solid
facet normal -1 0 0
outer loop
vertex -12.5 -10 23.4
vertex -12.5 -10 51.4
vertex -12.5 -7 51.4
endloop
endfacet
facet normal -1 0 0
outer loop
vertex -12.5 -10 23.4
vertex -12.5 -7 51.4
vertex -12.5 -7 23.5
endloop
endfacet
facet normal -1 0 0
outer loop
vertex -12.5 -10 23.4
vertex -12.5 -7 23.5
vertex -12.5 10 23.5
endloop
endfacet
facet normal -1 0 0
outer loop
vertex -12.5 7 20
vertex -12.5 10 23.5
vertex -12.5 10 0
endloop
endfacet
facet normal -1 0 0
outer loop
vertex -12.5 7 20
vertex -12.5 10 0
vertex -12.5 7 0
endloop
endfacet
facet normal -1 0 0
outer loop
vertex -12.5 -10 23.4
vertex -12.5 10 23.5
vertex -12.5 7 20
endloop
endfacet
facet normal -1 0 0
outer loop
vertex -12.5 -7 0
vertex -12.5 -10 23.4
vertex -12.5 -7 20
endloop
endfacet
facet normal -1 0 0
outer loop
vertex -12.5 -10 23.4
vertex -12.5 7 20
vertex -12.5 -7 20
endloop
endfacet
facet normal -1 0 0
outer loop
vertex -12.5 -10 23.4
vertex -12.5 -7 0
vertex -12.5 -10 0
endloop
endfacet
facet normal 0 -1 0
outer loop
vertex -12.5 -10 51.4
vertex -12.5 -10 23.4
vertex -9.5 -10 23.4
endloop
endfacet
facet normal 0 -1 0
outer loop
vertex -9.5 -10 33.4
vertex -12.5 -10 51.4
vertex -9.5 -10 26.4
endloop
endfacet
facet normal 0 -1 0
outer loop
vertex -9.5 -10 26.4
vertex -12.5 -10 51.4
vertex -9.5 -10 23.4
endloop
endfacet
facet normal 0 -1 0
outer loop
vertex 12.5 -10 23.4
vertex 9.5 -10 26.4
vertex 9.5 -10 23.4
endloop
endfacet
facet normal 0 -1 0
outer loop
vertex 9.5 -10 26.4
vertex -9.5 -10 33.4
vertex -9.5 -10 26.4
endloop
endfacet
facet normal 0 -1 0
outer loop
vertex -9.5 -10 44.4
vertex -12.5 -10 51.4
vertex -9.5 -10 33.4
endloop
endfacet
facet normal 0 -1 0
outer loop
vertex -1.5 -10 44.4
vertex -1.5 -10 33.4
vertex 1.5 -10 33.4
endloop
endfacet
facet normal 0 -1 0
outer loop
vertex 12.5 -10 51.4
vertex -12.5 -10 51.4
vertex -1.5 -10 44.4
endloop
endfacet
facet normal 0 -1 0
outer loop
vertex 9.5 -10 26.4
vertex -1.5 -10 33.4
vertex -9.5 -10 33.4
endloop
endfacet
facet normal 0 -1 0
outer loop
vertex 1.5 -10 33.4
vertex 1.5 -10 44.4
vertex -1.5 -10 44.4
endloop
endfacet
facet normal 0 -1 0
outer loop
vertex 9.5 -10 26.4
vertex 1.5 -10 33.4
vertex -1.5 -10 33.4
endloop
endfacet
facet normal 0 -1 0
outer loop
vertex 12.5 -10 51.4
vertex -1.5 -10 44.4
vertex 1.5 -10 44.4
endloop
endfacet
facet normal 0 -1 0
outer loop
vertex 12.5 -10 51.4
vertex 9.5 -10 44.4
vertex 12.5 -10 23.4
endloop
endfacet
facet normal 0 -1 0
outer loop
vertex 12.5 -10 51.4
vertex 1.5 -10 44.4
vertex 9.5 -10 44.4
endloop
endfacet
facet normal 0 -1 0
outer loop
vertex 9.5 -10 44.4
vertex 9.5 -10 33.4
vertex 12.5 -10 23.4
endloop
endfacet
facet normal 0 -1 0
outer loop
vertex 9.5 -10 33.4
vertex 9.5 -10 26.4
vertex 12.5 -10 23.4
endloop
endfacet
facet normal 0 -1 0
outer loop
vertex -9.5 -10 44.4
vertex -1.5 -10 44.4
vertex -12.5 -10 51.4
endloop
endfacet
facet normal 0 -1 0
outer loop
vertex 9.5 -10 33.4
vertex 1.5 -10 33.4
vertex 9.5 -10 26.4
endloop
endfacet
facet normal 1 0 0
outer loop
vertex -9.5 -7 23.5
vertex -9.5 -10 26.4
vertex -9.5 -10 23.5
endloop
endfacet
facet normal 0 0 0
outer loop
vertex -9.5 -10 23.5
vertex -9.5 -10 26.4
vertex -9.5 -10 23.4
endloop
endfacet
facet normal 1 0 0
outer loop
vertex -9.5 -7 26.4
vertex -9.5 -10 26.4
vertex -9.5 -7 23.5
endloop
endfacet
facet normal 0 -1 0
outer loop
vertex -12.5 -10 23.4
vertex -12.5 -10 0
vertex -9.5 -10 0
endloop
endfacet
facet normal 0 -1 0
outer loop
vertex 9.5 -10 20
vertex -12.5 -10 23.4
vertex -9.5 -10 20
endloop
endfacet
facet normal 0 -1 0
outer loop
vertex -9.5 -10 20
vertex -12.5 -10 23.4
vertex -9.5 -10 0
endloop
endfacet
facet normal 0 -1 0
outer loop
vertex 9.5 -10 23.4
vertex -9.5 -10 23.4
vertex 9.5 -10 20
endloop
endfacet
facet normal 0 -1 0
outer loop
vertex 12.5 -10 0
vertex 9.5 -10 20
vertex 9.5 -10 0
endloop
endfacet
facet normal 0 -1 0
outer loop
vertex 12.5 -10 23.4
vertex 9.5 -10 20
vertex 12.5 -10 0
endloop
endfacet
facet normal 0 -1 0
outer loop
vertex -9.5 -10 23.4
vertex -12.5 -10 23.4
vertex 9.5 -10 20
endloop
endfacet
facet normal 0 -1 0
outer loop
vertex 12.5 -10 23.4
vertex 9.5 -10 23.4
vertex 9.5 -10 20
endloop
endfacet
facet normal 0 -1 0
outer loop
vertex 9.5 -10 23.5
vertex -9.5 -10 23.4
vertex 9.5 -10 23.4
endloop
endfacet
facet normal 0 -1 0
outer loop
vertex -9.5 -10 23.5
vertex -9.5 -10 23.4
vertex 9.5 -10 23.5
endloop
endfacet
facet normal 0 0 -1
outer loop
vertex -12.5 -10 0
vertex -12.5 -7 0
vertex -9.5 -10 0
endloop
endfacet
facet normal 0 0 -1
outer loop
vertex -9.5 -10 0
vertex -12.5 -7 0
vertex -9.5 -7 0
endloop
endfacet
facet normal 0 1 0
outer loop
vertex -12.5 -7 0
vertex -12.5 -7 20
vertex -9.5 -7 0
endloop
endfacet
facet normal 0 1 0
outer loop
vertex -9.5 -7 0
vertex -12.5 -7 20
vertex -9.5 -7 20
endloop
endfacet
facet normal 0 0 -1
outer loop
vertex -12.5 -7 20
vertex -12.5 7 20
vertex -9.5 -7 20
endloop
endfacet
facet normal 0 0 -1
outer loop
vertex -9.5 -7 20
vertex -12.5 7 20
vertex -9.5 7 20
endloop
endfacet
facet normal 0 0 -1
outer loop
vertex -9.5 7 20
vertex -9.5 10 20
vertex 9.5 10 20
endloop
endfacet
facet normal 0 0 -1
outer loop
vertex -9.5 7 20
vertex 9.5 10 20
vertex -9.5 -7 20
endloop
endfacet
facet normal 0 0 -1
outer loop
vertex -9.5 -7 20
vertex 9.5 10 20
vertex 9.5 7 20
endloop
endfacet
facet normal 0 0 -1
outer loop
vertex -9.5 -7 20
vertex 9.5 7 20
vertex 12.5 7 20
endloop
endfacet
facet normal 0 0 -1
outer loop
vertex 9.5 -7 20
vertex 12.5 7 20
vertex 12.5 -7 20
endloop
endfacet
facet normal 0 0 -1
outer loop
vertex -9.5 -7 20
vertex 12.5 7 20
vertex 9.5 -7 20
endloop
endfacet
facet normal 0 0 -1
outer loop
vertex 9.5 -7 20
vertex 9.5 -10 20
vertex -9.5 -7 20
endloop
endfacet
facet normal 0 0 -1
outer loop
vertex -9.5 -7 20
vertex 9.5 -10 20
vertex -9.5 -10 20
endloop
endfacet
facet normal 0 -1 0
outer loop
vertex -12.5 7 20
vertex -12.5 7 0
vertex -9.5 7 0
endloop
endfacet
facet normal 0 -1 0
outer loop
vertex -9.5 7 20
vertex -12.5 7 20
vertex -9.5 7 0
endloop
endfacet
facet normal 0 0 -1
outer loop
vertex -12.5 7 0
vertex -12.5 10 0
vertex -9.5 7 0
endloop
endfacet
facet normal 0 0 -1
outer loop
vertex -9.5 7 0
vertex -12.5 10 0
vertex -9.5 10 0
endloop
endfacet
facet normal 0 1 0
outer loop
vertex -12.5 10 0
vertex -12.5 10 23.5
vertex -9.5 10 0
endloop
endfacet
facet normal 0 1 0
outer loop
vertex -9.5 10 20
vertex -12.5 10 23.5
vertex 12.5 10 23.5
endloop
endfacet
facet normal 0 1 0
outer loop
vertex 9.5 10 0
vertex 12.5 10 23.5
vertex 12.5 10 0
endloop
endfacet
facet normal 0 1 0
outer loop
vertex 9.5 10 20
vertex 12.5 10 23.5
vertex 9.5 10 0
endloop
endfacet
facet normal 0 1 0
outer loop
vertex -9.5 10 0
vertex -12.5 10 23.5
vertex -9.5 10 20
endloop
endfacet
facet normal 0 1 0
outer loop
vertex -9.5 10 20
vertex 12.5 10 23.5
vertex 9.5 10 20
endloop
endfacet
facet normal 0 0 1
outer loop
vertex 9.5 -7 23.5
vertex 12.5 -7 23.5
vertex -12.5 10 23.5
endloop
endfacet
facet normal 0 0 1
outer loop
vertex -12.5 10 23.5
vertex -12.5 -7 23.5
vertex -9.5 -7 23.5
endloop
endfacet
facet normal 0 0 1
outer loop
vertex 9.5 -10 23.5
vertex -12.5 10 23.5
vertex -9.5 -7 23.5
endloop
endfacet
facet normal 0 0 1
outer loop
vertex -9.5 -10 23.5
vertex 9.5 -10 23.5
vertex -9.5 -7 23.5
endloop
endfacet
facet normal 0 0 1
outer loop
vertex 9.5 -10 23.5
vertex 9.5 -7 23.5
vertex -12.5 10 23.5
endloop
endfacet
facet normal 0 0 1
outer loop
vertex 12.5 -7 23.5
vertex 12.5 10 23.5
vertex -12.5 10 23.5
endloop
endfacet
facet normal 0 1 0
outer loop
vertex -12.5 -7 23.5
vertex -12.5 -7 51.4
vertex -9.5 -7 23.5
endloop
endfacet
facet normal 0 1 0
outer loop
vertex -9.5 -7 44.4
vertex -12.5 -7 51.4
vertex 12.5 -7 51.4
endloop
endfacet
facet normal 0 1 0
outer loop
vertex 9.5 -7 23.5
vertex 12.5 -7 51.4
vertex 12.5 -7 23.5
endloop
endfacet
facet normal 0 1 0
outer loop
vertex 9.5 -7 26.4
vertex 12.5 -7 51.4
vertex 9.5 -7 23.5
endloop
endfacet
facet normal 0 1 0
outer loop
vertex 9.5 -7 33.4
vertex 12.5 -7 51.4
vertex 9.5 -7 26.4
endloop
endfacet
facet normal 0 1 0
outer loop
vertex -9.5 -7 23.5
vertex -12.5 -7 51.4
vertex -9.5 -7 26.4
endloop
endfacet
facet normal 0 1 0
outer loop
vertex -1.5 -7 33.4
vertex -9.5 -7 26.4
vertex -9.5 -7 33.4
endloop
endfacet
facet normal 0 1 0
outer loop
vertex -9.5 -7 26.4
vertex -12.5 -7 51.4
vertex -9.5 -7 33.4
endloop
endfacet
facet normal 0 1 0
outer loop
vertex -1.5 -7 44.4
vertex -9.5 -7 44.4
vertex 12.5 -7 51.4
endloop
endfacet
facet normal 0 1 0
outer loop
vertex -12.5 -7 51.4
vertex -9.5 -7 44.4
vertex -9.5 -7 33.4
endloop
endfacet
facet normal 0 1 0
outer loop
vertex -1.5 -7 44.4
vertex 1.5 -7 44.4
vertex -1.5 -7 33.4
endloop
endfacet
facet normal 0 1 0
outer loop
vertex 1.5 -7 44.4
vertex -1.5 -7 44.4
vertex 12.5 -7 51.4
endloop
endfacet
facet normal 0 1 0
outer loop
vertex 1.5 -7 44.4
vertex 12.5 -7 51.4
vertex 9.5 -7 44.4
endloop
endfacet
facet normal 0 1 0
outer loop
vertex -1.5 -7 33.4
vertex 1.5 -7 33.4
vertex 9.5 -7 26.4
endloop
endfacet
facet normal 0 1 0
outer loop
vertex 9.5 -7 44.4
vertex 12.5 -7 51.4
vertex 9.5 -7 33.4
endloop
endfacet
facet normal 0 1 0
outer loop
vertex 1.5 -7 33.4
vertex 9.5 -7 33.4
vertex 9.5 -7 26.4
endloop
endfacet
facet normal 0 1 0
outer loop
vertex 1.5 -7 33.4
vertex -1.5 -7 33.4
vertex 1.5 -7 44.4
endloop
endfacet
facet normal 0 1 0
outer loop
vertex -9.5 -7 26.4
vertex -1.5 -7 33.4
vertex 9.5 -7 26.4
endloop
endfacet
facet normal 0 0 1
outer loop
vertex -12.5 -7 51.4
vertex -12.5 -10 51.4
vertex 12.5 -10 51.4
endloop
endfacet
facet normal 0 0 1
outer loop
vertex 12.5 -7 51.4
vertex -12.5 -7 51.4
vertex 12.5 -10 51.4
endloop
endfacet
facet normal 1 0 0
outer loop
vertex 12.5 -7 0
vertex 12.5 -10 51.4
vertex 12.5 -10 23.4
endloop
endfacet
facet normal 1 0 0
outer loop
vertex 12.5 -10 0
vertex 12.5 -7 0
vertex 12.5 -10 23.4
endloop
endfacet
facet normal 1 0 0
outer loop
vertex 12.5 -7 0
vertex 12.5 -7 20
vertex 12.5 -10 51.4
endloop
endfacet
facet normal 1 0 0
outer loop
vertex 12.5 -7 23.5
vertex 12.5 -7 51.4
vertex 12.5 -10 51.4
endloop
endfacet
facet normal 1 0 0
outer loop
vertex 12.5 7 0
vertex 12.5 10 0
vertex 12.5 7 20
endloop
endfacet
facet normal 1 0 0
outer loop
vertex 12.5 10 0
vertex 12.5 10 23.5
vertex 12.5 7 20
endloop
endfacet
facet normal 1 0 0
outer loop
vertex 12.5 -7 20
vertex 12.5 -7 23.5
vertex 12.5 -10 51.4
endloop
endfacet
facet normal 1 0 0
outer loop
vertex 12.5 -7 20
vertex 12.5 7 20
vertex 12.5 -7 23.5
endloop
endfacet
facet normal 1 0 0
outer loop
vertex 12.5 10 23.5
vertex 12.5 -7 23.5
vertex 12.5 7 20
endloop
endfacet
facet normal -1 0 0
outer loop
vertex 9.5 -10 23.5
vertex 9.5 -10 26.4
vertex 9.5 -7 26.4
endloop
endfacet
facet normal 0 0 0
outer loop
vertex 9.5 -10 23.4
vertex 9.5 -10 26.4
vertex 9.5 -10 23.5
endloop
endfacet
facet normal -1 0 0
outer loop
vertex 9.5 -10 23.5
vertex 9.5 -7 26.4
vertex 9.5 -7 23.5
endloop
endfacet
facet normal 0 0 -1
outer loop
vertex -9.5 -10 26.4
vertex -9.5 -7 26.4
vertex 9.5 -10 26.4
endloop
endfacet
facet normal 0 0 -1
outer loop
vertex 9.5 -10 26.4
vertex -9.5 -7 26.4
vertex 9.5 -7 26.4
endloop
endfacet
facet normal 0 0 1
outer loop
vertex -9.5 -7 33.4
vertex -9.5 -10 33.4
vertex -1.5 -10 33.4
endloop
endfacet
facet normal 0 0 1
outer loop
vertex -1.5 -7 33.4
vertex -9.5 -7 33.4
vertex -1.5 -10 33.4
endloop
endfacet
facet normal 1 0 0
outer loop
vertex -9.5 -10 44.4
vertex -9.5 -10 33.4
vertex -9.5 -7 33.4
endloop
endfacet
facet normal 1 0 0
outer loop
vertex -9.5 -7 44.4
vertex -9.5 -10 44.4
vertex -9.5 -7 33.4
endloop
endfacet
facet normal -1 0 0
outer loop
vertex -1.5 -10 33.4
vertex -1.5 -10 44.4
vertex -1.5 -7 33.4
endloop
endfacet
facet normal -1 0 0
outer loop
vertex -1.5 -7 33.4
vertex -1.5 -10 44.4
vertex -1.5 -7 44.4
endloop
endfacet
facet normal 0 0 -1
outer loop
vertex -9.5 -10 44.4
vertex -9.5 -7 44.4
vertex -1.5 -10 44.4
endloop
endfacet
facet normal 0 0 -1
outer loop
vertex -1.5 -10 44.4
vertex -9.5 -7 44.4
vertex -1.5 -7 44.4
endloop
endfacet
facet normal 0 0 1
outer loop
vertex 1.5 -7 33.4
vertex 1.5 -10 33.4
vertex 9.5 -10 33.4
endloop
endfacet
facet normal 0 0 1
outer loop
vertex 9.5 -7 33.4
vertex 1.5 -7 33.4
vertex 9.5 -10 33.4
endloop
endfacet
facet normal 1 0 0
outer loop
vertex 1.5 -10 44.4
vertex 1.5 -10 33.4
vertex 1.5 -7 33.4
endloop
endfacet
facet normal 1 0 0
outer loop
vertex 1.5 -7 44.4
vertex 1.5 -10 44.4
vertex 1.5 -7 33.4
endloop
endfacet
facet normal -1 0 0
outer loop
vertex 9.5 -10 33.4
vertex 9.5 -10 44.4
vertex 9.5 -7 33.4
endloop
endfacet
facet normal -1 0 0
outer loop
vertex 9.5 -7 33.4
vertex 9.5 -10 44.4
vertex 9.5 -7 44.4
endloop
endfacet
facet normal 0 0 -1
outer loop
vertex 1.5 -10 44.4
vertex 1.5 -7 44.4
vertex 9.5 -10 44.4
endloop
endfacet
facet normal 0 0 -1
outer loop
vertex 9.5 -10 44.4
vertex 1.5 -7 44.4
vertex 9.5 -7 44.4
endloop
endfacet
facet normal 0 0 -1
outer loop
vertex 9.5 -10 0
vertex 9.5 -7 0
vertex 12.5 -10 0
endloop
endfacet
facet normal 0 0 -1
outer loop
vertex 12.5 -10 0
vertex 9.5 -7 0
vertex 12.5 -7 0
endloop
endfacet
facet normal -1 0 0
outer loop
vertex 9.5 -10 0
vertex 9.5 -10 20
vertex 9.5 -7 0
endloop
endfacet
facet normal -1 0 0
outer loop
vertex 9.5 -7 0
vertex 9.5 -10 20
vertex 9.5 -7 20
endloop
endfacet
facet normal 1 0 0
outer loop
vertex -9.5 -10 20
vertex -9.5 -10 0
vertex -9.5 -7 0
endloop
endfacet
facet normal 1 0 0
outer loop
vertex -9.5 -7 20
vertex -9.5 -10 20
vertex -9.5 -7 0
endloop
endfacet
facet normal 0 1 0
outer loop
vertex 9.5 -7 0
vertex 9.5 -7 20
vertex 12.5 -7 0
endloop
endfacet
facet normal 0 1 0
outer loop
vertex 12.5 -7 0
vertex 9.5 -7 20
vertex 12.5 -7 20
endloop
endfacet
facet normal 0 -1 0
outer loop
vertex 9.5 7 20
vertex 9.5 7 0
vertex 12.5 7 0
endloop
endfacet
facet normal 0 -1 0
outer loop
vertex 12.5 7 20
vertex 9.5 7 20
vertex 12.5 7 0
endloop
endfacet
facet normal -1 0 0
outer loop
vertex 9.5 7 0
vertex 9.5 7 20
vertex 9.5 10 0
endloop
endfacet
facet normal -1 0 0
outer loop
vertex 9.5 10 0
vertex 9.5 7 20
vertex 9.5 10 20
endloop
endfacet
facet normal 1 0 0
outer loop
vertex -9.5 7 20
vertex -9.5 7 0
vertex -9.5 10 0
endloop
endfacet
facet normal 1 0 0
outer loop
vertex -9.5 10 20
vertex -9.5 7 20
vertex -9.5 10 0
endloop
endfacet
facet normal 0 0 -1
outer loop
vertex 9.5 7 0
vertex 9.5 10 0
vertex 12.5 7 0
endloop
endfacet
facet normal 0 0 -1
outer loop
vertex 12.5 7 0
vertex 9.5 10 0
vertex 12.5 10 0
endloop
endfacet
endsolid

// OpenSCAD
/*
the following parameters are for the
seat of the chair - actually the table
module which will mean that some
contraints will be necessary in the
values for the seat back so that it
fits - there are no checks in this code
as it is easy to see if chosen values
are appropiate or even physically
possible
*/

length = 20;
width  =25;
depth = 3.5;;

// parametersfor the  legs  - legs have square cross section

cross =3;
leg_length =20;





echo(" length table is ", length, " mm");
 echo(" width table is ", width, " mm");
echo(" depth table top is ", depth, " mm");
 echo(" width table leg is ", cross, " mm");
 echo(" height table leg is ", leg_length, " mm");
 echo(" overall height table  is ", leg_length + depth, " mm");

/*
now parameters for the chair back
some will be constrained to values for
the table which forms the seat of
the chair - that is the overall width
of the seat back and the thickness
of the seat back -
the four settable parameters are
below
*/



overall_height = 25;
leg_len =3;
width_vertical_bar = 3;
width_horizontal_bar =7;

overall_width = width;
thickness =cross;





union()
{
translate([0,0,leg_length+depth])
rotate([180,0,0])
table();
translate([0,-l+thickness,hoh + leg_len + leg_length +  depth-0.1 ])
rotate([90,0,0])
chair_back();

}





l = length/2;
w = width/2;

how = overall_width/2;
hoh = overall_height/2;
ll = -hoh - leg_len;
wvb = width_vertical_bar;
whb = width_horizontal_bar;
hwvb = wvb/2;









module table()
{

/*
   polyhedron command
  by pmoews
*/
polyhedron
       (points = [
                 [ -w,  l, 0],
                 [ -w, -l, 0],
                 [  w, -l, 0],
                 [  w,  l, 0],
                 [ -w,  l,  depth],
                 [ -w, -l,  depth],
                 [  w, -l,  depth],
                 [  w,  l,  depth],
                 [  w-cross, -l,  depth],
                 [  w-cross, cross-l,  depth],
                 [  w, cross-l,  depth],
                 [  w, -l,  leg_length + depth],
                 [  w-cross, -l,  leg_length + depth],
                 [  w-cross, cross-l,  leg_length + depth],
                 [  w, cross-l,  leg_length + depth],
                 [  w,  l-cross,  depth],
                 [  w-cross,  l-cross,  depth],
                 [  w-cross,  l,  depth],
                 [  w,  l,  leg_length + depth],
                 [  w,  l-cross,  leg_length + depth],
                 [  w-cross,  l-cross,  leg_length + depth],
                 [  w-cross,  l,  leg_length + depth],
                 [ cross-w,  l,  depth],
                 [ cross-w,  l-cross,  depth],
                 [ -w,  l-cross,  depth],
                 [ -w,  l,  leg_length + depth],
                 [ cross-w,  l,  leg_length + depth],
                 [ cross-w,  l-cross,  leg_length + depth],
                 [ -w,  l-cross,  leg_length + depth],
                 [ -w, cross-l,  depth],
                 [ cross-w, cross-l,  depth],
                 [ cross-w, -l,  depth],
                 [ -w, -l,  leg_length + depth],
                 [ -w, cross-l,  leg_length + depth],
                 [ cross-w, cross-l,  leg_length + depth],
                 [ cross-w, -l,  leg_length + depth],
                ],
           triangles = [
                 [   14,   10,   11],[    6,   11,   10],
                 [   11,    6,   12],[    8,   12,    6],
                 [   12,    8,   13],[    9,   13,    8],
                 [   13,    9,   14],[    9,   10,   14],
                 [   17,   21,   16],[   20,   16,   21],
                 [   16,   20,   15],[   19,   15,   20],
                 [   15,   19,    7],[   18,    7,   19],
                 [    7,   18,   17],[   18,   21,   17],
                 [   24,   28,   23],[   27,   23,   28],
                 [   23,   27,   22],[   26,   22,   27],
                 [   22,   26,    4],[   25,    4,   26],
                 [    4,   25,   24],[   25,   28,   24],
                 [   31,   35,   30],[   34,   30,   35],
                 [   30,   34,   29],[   33,   29,   34],
                 [   29,   33,    5],[   32,    5,   33],
                 [    5,   32,   31],[   32,   35,   31],
                 [   13,   14,   11],[   13,   11,   12],
                 [   20,   21,   18],[   20,   18,   19],
                 [   27,   28,   25],[   27,   25,   26],
                 [   34,   35,   32],[   34,   32,   33],
                 [    2,    3,    0],[    2,    0,    1],
                 [   16,    9,   30],[   16,   30,   23],
                 [   10,    2,    6],[    7,    3,   15],
                 [   10,   15,    3],[   10,    3,    2],
                 [    7,   17,    3],[   22,    4,    0],
                 [    0,    3,   17],[    0,   17,   22],
                 [    4,   24,    0],[   29,    5,    1],
                 [    1,    0,   24],[    1,   24,   29],
                 [    5,   31,    1],[    8,    6,    2],
                 [    2,    1,   31],[    2,   31,    8],
                 [   10,    9,   16],[   10,   16,   15],
                 [   24,   23,   30],[   24,   30,   29],
                 [    9,    8,   31],[    9,   31,   30],
                 [   17,   16,   23],[   17,   23,   22],
                 ]
      );

}



module chair_back()
{


/*
   polyhedron command by
   pmoews
*/
polyhedron
       (points = [
                 [ -how, -hoh + whb,   0.0],
                 [ -how + wvb, -hoh + whb,   0.0],
                 [  -hwvb, -hoh + whb,   0.0],
                 [   hwvb, -hoh + whb,   0.0],
                 [  how - wvb, -hoh + whb,   0.0],
                 [  how, -hoh + whb,   0.0],
                 [  how,  hoh - whb,   0.0],
                 [  how - wvb,  hoh - whb,   0.0],
                 [   hwvb,  hoh - whb,   0.0],
                 [  -hwvb,  hoh - whb,   0.0],
                 [ -how + wvb,  hoh - whb,   0.0],
                 [ -how,  hoh - whb,   0.0],
                 [  how,  hoh,   0.0],
                 [  how - wvb,  hoh,   0.0],
                 [   hwvb,  hoh,   0.0],
                 [  -hwvb,  hoh,   0.0],
                 [ -how + wvb,  hoh,   0.0],
                 [ -how,  hoh,   0.0],
                 [ -how, -hoh,   0.0],
                 [ -how + wvb, -hoh,   0.0],
                 [  -hwvb, -hoh,   0.0],
                 [   hwvb, -hoh,   0.0],
                 [  how - wvb, -hoh,   0.0],
                 [  how, -hoh,   0.0],
                 [  how, ll,   0.0],
                 [  how - wvb, ll,   0.0],
                 [ -how + wvb, ll,   0.0],
                 [ -how, ll,   0.0],
                 [ -how, -hoh + whb,   thickness],
                 [ -how + wvb, -hoh + whb,   thickness],
                 [  -hwvb, -hoh + whb,   thickness],
                 [   hwvb, -hoh + whb,   thickness],
                 [  how - wvb, -hoh + whb,   thickness],
                 [  how, -hoh + whb,   thickness],
                 [  how,  hoh - whb,   thickness],
                 [  how - wvb,  hoh - whb,   thickness],
                 [   hwvb,  hoh - whb,   thickness],
                 [  -hwvb,  hoh - whb,   thickness],
                 [ -how + wvb,  hoh - whb,   thickness],
                 [ -how,  hoh - whb,   thickness],
                 [  how,  hoh,   thickness],
                 [  how - wvb,  hoh,   thickness],
                 [   hwvb,  hoh,   thickness],
                 [  -hwvb,  hoh,   thickness],
                 [ -how + wvb,  hoh,   thickness],
                 [ -how,  hoh,   thickness],
                 [ -how, -hoh,   thickness],
                 [ -how + wvb, -hoh,   thickness],
                 [  -hwvb, -hoh,   thickness],
                 [   hwvb, -hoh,   thickness],
                 [  how - wvb, -hoh,   thickness],
                 [  how, -hoh,   thickness],
                 [  how, ll,   thickness],
                 [  how - wvb, ll,   thickness],
                 [ -how + wvb, ll,   thickness],
                 [ -how, ll,   thickness],
                ],
           triangles = [
                 [   11,    0,   10],[    1,   10,    0],
                 [   10,    1,   38],[   29,   38,    1],
                 [   38,   29,   39],[   28,   39,   29],
                 [   39,   28,   11],[   28,    0,   11],
                 [    9,    2,    8],[    3,    8,    2],
                 [    8,    3,   36],[   31,   36,    3],
                 [   36,   31,   37],[   30,   37,   31],
                 [   37,   30,    9],[   30,    2,    9],
                 [    7,    4,    6],[    5,    6,    4],
                 [    6,    5,   34],[   33,   34,    5],
                 [   34,   33,   35],[   32,   35,   33],
                 [   35,   32,    7],[   32,    4,    7],
                 [   18,   27,   19],[   26,   19,   27],
                 [   19,   26,   47],[   54,   47,   26],
                 [   47,   54,   46],[   55,   46,   54],
                 [   46,   55,   18],[   55,   27,   18],
                 [   22,   25,   23],[   24,   23,   25],
                 [   23,   24,   51],[   52,   51,   24],
                 [   51,   52,   50],[   53,   50,   52],
                 [   50,   53,   22],[   53,   25,   22],
                 [   24,   25,   53],[   24,   53,   52],
                 [   26,   27,   55],[   26,   55,   54],
                 [   16,   17,   11],[   16,   11,   10],
                 [   15,   16,   10],[   15,   10,    9],
                 [   14,   15,    9],[   14,    9,    8],
                 [   13,   14,    8],[   13,    8,    7],
                 [   12,   13,    7],[   12,    7,    6],
                 [   38,   39,   45],[   38,   45,   44],
                 [   37,   38,   44],[   37,   44,   43],
                 [   36,   37,   43],[   36,   43,   42],
                 [   35,   36,   42],[   35,   42,   41],
                 [   34,   35,   41],[   34,   41,   40],
                 [    1,    0,   18],[    1,   18,   19],
                 [    2,    1,   19],[    2,   19,   20],
                 [    3,    2,   20],[    3,   20,   21],
                 [    4,    3,   21],[    4,   21,   22],
                 [    5,    4,   22],[    5,   22,   23],
                 [   47,   46,   28],[   47,   28,   29],
                 [   48,   47,   29],[   48,   29,   30],
                 [   49,   48,   30],[   49,   30,   31],
                 [   50,   49,   31],[   50,   31,   32],
                 [   51,   50,   32],[   51,   32,   33],
                 [   45,   17,   16],[   45,   16,   44],
                 [   44,   16,   15],[   44,   15,   43],
                 [   43,   15,   14],[   43,   14,   42],
                 [   42,   14,   13],[   42,   13,   41],
                 [   41,   13,   12],[   41,   12,   40],
                 [   11,   17,   45],[   11,   45,   39],
                 [   12,    6,   34],[   12,   34,   40],
                 [    9,   10,   38],[    9,   38,   37],
                 [    7,    8,   36],[    7,   36,   35],
                 [   18,    0,   28],[   18,   28,   46],
                 [   23,   51,   33],[   23,   33,    5],
                 [   30,   29,    1],[   30,    1,    2],
                 [   32,   31,    3],[   32,    3,    4],
                 [   20,   19,   47],[   20,   47,   48],
                 [   22,   21,   49],[   22,   49,   50],
                 [   21,   20,   48],[   21,   48,   49],
                 ]                   );
}




/*

parameters used to make bench.stl


length = 20;
width  =40;
depth = 3;

// parameters leg  - legs have square cross section

cross =3;
leg_length =12;

overall_height = 15;
leg_len =3;
width_vertical_bar = 2.5;
width_horizontal_bar = 5;


 */




/*

parameters used to make bed.stl

 length = 60;
width  =40;
depth = 5;

// parameters leg  - legs have square cross section

cross =3;
leg_length =4;



overall_height = 10;
leg_len =1;
width_vertical_bar = 2.5;
width_horizontal_bar = 3;


*/
